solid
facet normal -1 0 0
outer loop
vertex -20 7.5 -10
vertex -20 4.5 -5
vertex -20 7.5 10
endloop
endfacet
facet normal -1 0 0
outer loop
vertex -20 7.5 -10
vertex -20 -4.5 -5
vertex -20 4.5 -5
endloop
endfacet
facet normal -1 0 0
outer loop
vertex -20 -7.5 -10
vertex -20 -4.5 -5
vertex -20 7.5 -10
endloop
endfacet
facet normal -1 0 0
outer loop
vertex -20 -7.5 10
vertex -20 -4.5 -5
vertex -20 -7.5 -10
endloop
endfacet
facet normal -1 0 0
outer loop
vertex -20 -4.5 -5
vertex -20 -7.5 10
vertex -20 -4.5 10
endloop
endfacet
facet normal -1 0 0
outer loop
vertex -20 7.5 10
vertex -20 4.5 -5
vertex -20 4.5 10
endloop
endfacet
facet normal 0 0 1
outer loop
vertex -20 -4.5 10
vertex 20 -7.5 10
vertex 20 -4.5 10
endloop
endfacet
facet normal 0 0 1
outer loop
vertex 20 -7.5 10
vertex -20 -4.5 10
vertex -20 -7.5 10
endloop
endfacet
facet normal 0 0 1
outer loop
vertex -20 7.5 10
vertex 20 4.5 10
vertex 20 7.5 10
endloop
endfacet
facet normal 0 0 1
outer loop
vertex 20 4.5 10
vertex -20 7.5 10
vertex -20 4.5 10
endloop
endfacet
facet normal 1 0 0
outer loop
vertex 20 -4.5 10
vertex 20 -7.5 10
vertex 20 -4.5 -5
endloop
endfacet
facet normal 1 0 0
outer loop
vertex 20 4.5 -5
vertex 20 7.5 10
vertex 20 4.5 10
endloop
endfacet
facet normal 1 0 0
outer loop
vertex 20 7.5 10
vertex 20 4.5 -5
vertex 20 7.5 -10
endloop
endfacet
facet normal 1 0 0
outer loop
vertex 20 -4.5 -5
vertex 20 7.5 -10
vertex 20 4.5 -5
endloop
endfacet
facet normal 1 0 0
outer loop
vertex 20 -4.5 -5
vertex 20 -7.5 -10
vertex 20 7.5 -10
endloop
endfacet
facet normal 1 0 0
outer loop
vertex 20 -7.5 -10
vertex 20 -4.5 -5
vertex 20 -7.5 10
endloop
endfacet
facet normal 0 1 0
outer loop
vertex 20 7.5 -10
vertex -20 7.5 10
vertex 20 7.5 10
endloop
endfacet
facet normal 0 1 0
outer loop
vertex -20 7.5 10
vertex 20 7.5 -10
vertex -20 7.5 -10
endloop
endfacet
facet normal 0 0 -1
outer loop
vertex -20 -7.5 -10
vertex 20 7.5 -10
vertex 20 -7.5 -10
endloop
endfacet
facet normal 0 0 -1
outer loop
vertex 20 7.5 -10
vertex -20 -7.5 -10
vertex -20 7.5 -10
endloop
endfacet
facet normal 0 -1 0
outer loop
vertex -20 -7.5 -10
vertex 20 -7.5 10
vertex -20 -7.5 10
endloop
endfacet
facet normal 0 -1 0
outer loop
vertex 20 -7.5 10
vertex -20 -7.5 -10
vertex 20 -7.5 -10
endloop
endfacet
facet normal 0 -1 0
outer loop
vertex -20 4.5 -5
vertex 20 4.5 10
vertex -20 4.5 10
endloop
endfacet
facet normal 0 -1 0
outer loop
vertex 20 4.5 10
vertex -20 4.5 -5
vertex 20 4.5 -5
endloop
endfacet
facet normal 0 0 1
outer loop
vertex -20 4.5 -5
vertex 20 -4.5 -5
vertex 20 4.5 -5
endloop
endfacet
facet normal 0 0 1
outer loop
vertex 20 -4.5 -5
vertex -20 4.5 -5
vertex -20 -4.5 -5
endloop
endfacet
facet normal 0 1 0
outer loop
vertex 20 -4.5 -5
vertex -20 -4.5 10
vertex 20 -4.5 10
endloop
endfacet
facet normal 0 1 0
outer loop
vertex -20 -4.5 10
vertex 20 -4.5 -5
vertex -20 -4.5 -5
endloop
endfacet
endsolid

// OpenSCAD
// Halter

a=2;
b=20;

difference() {
cube([60-b,3+7+3+a,20],true);
translate([0,0,5])
cube([70-b,7+a,20],true);
}
/*

$fn=3;

linear_extrude(80)
difference() {
     m1();
     m2();
}

module m1() {
     circle(3);
     translate([33,0,0])
     circle(3);
     translate([33+14.5,10,0])
     circle(3);
     translate([0,23.5,0]) {
         translate([8.5-1,0,0])
         rotate(72.5)
         square([50,6], true);
         translate([24.5+1,0,0])
         rotate(-72.5)
         square([50,6], true);
     }
     translate([33/2,50-2.3,0])
     circle(4.3);
     translate([33/2,28,0])
     difference() {
         scale([3,10,1])
         circle(2);
         scale([3,10,1])
         circle(1);
         translate([0,-10,0])
         square([50,16+20], true);
     }

     translate([40-0.9,(5.5+6)/2+3-0.2,0])
     rotate(17.5/2)
     difference() {
         circle(5.5+6);
         circle(5.5);
         translate([0,10,0])
         square([30,20], true);
     }
}


module m2() {
     translate([40-0.9,(5.5+6)/2+3-0.2,0])
     rotate(17.5/2)
     difference() {
         circle(5.5+9);
         circle(5.5+6);
         translate([0,10,0])
         square([30,20], true);
     }
}

*/
